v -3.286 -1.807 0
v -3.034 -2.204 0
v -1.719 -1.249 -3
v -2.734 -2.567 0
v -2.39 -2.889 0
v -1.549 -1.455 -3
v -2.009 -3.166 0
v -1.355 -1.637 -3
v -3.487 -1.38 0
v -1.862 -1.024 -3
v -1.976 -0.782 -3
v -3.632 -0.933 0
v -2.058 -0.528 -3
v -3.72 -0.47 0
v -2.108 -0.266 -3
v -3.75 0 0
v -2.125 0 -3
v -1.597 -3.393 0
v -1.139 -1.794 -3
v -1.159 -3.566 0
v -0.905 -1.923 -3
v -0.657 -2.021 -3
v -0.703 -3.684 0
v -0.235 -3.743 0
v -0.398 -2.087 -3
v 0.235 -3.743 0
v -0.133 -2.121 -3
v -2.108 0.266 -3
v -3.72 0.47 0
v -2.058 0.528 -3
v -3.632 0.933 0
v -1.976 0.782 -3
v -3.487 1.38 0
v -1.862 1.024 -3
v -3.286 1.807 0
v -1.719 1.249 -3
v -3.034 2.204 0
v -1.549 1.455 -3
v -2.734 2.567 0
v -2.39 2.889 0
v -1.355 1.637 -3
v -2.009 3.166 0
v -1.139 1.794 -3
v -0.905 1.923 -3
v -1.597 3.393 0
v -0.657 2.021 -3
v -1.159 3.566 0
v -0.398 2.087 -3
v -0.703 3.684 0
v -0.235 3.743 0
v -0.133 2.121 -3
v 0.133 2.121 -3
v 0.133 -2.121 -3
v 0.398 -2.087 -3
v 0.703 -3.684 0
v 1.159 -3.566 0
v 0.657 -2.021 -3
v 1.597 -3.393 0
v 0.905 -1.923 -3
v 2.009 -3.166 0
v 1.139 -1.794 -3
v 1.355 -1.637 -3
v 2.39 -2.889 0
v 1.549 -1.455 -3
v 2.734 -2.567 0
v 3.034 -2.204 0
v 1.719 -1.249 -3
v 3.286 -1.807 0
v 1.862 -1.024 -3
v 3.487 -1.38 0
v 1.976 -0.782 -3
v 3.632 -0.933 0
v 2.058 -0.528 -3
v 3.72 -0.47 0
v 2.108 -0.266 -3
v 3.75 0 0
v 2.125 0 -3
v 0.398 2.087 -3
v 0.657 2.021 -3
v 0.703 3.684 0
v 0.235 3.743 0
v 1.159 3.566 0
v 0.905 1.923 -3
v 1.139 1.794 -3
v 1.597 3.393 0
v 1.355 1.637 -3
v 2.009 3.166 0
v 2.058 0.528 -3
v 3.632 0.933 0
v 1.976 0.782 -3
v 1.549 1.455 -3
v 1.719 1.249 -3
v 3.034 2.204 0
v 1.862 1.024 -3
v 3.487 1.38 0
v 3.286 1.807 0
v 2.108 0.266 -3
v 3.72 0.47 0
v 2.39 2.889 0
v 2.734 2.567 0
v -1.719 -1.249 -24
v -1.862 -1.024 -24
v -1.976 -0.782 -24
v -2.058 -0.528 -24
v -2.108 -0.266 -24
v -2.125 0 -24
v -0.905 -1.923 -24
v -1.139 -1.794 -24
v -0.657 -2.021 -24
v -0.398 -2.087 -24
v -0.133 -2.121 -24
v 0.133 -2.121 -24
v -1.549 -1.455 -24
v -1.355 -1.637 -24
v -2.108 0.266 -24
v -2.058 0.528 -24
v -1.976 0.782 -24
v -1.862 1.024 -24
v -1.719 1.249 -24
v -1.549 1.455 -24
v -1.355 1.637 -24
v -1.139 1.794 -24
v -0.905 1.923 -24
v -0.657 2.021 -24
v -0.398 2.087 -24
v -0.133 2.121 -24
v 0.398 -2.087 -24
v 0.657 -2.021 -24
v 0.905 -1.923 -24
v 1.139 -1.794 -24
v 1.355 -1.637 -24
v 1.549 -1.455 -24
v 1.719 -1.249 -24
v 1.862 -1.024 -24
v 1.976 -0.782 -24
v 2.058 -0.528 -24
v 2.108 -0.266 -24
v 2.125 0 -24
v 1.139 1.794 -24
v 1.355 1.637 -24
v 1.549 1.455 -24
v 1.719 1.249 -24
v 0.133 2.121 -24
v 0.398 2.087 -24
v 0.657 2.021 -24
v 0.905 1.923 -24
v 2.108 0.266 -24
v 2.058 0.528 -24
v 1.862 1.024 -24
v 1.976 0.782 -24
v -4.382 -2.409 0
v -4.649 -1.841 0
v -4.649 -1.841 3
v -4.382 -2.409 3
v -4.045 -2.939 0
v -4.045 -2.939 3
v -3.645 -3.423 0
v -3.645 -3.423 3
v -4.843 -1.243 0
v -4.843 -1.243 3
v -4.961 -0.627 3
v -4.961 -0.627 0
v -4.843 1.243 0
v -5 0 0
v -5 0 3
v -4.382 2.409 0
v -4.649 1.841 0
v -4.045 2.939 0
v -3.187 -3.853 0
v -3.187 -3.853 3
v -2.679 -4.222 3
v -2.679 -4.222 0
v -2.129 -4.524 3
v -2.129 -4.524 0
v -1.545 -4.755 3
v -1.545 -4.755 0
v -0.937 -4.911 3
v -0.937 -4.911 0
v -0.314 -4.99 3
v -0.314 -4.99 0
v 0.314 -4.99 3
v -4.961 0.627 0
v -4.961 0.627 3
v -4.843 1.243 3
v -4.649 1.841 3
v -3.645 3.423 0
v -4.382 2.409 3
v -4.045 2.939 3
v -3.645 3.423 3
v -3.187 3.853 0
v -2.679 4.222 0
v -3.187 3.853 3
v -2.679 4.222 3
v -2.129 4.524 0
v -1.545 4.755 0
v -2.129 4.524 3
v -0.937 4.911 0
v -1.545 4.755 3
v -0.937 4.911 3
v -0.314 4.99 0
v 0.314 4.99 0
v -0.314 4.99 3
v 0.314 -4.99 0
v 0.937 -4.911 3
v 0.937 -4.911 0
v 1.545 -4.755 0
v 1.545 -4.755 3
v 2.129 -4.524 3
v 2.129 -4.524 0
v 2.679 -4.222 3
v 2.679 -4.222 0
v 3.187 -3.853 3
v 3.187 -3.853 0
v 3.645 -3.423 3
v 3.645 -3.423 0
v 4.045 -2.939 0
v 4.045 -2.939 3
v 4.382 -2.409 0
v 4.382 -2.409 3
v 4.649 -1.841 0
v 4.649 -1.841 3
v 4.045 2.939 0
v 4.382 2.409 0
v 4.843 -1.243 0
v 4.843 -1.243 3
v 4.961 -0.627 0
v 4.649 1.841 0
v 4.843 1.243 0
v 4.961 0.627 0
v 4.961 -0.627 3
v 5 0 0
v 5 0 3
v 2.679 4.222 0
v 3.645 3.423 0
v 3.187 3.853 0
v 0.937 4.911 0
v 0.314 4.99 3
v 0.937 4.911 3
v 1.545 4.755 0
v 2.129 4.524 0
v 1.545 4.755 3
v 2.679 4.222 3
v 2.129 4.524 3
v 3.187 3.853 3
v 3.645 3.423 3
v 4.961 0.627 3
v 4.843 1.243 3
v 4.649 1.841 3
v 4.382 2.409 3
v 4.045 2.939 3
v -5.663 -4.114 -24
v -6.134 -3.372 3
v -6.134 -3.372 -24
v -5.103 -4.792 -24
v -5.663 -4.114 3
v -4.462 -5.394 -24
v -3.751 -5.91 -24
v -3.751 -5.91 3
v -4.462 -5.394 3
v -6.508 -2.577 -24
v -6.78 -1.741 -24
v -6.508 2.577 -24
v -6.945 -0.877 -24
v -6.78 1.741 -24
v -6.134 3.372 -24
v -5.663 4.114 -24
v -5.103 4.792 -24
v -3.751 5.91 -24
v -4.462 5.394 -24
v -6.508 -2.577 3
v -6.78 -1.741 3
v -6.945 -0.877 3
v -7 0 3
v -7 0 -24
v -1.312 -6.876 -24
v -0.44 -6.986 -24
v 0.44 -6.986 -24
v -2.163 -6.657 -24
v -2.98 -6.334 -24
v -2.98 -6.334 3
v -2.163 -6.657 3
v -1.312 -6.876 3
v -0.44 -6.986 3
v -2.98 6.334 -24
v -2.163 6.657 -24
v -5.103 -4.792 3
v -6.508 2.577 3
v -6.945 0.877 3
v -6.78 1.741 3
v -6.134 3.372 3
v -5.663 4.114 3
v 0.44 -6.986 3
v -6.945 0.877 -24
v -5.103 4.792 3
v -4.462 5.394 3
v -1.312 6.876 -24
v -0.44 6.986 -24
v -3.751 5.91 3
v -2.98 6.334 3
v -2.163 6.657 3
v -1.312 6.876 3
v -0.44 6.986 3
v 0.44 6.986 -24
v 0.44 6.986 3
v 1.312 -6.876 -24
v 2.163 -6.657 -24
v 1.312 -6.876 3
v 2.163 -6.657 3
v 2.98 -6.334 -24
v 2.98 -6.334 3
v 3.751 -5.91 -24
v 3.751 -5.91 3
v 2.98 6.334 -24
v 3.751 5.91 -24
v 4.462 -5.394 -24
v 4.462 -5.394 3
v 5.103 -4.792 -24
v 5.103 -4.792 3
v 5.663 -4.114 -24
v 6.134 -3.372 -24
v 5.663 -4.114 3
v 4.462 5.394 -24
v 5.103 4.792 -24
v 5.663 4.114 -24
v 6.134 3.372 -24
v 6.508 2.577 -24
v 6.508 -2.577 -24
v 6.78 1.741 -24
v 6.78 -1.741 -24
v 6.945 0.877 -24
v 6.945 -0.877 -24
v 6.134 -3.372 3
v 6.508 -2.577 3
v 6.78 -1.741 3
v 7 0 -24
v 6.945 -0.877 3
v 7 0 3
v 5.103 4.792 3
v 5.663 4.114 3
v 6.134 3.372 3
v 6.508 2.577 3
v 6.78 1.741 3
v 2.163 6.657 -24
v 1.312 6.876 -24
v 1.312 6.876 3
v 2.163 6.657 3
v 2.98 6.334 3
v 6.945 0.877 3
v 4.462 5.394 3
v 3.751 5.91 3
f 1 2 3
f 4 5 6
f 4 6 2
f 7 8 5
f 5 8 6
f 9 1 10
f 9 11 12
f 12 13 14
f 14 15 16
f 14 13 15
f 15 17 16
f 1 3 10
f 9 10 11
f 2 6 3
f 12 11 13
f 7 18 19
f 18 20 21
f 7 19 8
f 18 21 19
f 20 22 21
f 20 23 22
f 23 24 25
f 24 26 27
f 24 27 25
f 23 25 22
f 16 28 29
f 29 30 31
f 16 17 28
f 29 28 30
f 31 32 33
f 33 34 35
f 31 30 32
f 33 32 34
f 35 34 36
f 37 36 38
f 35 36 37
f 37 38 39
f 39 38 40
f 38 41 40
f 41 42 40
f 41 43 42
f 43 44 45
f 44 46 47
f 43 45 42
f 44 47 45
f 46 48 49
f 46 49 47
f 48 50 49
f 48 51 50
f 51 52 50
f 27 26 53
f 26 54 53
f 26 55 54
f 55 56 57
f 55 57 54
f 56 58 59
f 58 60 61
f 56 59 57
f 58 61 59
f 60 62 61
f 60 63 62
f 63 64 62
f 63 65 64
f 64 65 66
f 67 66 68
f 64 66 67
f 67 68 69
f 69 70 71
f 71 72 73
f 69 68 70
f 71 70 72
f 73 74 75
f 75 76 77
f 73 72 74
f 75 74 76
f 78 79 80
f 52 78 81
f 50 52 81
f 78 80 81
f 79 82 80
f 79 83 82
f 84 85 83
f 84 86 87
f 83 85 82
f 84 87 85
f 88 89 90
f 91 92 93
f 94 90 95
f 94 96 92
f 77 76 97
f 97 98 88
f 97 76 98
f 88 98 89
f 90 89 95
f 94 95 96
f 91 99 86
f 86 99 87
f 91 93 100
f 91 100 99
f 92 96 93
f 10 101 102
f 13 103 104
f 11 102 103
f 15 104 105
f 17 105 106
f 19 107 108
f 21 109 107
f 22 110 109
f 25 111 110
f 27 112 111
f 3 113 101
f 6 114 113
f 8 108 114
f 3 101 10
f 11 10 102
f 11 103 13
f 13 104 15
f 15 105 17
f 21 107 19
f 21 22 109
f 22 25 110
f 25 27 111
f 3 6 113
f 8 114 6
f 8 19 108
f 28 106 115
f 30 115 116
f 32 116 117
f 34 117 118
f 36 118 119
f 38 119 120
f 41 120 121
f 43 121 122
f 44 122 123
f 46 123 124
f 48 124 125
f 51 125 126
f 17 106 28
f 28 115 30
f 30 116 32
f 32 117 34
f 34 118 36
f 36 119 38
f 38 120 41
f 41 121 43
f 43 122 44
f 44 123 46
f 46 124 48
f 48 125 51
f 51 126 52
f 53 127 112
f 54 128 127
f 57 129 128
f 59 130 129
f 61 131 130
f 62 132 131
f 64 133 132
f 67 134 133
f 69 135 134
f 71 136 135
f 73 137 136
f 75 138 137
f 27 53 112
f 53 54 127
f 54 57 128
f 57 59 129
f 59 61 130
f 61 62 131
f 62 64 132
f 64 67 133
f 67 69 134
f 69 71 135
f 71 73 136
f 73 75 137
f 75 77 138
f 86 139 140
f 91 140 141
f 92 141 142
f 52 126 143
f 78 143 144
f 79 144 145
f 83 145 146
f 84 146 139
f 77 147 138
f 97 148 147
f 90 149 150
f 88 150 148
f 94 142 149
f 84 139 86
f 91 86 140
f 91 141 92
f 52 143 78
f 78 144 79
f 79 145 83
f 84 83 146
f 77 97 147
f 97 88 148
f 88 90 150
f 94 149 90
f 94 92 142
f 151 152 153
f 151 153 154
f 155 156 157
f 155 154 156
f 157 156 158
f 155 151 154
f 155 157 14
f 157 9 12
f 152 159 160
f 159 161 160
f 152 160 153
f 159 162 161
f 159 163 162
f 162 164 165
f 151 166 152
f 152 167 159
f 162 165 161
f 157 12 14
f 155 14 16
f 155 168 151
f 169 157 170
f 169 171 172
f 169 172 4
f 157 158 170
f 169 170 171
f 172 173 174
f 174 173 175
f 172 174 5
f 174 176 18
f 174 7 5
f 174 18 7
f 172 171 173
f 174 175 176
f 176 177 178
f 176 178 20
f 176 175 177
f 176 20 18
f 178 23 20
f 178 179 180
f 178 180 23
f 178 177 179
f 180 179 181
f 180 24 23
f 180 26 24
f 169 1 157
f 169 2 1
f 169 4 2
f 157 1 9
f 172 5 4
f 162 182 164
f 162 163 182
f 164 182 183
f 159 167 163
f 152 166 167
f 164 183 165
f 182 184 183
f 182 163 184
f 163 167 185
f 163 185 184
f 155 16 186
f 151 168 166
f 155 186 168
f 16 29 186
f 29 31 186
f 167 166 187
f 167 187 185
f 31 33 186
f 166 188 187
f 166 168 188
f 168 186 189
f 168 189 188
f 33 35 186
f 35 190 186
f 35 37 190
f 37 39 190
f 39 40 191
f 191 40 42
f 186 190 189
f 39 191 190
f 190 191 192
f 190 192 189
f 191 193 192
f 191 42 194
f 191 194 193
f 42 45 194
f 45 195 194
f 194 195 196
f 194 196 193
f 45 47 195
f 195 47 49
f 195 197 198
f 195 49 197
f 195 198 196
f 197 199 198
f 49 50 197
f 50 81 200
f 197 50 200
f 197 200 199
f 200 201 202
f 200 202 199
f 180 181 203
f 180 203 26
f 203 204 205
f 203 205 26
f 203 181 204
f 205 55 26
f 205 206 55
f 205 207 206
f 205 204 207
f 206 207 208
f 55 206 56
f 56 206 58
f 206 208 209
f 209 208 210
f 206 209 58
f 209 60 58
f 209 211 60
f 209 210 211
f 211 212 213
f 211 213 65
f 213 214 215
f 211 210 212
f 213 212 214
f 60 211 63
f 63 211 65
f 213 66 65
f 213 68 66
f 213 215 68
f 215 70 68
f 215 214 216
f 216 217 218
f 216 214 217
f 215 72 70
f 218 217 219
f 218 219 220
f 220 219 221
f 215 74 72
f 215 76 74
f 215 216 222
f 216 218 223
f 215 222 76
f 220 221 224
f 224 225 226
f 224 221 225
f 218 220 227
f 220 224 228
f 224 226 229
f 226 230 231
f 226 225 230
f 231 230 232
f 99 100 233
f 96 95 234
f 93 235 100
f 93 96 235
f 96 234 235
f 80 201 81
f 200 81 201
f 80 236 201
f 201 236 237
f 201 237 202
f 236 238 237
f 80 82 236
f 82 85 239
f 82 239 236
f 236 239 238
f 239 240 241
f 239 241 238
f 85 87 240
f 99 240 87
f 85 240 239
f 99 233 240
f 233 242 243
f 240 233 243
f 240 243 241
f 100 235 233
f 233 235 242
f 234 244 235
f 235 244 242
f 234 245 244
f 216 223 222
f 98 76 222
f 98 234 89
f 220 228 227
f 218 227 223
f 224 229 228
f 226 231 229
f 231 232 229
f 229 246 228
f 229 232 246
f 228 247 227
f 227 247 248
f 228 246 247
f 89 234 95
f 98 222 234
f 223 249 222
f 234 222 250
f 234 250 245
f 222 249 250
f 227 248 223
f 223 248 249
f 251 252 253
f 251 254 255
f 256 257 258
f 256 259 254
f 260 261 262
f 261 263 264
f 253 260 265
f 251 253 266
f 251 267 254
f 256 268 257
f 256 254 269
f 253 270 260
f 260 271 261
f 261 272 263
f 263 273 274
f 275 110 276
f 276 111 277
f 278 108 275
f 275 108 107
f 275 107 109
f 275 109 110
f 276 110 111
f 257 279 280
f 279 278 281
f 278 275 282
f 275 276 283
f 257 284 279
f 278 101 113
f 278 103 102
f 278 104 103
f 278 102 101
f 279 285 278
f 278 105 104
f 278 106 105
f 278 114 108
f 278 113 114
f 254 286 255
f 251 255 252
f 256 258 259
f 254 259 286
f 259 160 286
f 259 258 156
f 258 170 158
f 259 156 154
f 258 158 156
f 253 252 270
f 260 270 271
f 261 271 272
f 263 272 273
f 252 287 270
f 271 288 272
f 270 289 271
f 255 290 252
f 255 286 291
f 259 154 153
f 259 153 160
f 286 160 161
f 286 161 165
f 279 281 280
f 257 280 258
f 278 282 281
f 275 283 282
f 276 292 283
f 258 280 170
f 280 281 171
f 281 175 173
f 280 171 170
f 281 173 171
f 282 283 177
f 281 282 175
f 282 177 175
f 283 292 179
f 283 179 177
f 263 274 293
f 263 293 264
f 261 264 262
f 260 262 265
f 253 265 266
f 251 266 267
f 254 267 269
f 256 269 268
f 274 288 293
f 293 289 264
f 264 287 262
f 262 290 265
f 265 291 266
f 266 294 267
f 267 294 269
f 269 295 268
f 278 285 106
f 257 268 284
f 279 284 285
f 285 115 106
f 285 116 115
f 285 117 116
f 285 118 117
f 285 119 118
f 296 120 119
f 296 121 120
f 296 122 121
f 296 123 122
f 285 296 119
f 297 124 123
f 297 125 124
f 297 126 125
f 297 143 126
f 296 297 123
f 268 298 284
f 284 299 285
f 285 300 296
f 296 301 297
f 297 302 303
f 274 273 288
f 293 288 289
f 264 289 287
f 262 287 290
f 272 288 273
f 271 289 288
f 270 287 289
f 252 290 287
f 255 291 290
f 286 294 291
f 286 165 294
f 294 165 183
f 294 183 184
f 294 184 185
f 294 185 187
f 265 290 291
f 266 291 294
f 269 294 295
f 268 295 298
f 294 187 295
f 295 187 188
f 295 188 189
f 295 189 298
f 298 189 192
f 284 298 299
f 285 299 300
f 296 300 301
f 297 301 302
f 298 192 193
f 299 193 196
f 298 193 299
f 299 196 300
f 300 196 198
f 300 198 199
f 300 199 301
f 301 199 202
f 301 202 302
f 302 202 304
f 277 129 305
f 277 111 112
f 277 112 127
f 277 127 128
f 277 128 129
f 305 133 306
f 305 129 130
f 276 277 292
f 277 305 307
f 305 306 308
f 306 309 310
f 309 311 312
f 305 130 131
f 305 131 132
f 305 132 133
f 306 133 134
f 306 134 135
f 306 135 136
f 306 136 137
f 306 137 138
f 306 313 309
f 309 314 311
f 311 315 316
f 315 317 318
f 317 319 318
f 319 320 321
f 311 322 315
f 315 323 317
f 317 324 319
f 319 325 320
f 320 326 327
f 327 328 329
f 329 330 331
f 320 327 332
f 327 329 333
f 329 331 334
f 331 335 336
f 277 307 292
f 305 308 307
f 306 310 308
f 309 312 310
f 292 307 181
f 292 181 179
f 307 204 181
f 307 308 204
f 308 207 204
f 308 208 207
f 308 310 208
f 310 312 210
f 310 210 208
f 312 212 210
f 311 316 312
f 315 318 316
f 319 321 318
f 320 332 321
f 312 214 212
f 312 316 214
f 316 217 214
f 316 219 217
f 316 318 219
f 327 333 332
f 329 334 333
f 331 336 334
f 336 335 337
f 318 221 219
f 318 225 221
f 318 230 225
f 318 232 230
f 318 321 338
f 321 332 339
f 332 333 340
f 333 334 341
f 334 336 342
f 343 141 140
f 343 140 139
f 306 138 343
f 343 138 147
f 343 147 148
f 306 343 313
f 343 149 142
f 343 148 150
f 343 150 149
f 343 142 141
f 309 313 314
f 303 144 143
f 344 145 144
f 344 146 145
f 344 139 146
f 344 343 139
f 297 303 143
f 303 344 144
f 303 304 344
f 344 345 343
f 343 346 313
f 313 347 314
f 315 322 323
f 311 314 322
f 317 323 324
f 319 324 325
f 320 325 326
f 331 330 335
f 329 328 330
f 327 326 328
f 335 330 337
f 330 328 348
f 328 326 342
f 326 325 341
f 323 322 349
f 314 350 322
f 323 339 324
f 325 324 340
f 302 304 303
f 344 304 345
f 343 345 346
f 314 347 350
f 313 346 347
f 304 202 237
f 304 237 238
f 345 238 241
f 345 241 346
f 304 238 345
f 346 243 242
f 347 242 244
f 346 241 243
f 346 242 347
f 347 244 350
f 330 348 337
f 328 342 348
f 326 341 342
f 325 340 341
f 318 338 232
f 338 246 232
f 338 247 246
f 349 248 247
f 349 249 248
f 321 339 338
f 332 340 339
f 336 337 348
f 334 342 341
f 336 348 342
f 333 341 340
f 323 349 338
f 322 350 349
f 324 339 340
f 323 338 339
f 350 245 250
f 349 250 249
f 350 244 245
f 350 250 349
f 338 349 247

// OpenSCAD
$fn = 50;


difference() {
	union() {
		translate(v = [0, 0, -24.0000000000]) {
			cylinder(h = 27, r = 7.0000000000);
		}
	}
	union() {
		translate(v = [0, 0, 0]) {
			rotate(a = [0, 0, 0]) {
				difference() {
					union() {
						translate(v = [0, 0, -27.0000000000]) {
							cylinder(h = 27, r = 2.0000000000);
						}
						translate(v = [0, 0, -3]) {
							cylinder(h = 3, r1 = 2.1250000000, r2 = 3.7500000000);
						}
						translate(v = [0, 0, -27.0000000000]) {
							cylinder(h = 27, r = 2.1250000000);
						}
						translate(v = [0, 0, -27.0000000000]) {
							cylinder(h = 27, r = 2.0000000000);
						}
					}
					union();
				}
			}
		}
		#cylinder(h = 3, r = 5.0000000000);
	}
}
